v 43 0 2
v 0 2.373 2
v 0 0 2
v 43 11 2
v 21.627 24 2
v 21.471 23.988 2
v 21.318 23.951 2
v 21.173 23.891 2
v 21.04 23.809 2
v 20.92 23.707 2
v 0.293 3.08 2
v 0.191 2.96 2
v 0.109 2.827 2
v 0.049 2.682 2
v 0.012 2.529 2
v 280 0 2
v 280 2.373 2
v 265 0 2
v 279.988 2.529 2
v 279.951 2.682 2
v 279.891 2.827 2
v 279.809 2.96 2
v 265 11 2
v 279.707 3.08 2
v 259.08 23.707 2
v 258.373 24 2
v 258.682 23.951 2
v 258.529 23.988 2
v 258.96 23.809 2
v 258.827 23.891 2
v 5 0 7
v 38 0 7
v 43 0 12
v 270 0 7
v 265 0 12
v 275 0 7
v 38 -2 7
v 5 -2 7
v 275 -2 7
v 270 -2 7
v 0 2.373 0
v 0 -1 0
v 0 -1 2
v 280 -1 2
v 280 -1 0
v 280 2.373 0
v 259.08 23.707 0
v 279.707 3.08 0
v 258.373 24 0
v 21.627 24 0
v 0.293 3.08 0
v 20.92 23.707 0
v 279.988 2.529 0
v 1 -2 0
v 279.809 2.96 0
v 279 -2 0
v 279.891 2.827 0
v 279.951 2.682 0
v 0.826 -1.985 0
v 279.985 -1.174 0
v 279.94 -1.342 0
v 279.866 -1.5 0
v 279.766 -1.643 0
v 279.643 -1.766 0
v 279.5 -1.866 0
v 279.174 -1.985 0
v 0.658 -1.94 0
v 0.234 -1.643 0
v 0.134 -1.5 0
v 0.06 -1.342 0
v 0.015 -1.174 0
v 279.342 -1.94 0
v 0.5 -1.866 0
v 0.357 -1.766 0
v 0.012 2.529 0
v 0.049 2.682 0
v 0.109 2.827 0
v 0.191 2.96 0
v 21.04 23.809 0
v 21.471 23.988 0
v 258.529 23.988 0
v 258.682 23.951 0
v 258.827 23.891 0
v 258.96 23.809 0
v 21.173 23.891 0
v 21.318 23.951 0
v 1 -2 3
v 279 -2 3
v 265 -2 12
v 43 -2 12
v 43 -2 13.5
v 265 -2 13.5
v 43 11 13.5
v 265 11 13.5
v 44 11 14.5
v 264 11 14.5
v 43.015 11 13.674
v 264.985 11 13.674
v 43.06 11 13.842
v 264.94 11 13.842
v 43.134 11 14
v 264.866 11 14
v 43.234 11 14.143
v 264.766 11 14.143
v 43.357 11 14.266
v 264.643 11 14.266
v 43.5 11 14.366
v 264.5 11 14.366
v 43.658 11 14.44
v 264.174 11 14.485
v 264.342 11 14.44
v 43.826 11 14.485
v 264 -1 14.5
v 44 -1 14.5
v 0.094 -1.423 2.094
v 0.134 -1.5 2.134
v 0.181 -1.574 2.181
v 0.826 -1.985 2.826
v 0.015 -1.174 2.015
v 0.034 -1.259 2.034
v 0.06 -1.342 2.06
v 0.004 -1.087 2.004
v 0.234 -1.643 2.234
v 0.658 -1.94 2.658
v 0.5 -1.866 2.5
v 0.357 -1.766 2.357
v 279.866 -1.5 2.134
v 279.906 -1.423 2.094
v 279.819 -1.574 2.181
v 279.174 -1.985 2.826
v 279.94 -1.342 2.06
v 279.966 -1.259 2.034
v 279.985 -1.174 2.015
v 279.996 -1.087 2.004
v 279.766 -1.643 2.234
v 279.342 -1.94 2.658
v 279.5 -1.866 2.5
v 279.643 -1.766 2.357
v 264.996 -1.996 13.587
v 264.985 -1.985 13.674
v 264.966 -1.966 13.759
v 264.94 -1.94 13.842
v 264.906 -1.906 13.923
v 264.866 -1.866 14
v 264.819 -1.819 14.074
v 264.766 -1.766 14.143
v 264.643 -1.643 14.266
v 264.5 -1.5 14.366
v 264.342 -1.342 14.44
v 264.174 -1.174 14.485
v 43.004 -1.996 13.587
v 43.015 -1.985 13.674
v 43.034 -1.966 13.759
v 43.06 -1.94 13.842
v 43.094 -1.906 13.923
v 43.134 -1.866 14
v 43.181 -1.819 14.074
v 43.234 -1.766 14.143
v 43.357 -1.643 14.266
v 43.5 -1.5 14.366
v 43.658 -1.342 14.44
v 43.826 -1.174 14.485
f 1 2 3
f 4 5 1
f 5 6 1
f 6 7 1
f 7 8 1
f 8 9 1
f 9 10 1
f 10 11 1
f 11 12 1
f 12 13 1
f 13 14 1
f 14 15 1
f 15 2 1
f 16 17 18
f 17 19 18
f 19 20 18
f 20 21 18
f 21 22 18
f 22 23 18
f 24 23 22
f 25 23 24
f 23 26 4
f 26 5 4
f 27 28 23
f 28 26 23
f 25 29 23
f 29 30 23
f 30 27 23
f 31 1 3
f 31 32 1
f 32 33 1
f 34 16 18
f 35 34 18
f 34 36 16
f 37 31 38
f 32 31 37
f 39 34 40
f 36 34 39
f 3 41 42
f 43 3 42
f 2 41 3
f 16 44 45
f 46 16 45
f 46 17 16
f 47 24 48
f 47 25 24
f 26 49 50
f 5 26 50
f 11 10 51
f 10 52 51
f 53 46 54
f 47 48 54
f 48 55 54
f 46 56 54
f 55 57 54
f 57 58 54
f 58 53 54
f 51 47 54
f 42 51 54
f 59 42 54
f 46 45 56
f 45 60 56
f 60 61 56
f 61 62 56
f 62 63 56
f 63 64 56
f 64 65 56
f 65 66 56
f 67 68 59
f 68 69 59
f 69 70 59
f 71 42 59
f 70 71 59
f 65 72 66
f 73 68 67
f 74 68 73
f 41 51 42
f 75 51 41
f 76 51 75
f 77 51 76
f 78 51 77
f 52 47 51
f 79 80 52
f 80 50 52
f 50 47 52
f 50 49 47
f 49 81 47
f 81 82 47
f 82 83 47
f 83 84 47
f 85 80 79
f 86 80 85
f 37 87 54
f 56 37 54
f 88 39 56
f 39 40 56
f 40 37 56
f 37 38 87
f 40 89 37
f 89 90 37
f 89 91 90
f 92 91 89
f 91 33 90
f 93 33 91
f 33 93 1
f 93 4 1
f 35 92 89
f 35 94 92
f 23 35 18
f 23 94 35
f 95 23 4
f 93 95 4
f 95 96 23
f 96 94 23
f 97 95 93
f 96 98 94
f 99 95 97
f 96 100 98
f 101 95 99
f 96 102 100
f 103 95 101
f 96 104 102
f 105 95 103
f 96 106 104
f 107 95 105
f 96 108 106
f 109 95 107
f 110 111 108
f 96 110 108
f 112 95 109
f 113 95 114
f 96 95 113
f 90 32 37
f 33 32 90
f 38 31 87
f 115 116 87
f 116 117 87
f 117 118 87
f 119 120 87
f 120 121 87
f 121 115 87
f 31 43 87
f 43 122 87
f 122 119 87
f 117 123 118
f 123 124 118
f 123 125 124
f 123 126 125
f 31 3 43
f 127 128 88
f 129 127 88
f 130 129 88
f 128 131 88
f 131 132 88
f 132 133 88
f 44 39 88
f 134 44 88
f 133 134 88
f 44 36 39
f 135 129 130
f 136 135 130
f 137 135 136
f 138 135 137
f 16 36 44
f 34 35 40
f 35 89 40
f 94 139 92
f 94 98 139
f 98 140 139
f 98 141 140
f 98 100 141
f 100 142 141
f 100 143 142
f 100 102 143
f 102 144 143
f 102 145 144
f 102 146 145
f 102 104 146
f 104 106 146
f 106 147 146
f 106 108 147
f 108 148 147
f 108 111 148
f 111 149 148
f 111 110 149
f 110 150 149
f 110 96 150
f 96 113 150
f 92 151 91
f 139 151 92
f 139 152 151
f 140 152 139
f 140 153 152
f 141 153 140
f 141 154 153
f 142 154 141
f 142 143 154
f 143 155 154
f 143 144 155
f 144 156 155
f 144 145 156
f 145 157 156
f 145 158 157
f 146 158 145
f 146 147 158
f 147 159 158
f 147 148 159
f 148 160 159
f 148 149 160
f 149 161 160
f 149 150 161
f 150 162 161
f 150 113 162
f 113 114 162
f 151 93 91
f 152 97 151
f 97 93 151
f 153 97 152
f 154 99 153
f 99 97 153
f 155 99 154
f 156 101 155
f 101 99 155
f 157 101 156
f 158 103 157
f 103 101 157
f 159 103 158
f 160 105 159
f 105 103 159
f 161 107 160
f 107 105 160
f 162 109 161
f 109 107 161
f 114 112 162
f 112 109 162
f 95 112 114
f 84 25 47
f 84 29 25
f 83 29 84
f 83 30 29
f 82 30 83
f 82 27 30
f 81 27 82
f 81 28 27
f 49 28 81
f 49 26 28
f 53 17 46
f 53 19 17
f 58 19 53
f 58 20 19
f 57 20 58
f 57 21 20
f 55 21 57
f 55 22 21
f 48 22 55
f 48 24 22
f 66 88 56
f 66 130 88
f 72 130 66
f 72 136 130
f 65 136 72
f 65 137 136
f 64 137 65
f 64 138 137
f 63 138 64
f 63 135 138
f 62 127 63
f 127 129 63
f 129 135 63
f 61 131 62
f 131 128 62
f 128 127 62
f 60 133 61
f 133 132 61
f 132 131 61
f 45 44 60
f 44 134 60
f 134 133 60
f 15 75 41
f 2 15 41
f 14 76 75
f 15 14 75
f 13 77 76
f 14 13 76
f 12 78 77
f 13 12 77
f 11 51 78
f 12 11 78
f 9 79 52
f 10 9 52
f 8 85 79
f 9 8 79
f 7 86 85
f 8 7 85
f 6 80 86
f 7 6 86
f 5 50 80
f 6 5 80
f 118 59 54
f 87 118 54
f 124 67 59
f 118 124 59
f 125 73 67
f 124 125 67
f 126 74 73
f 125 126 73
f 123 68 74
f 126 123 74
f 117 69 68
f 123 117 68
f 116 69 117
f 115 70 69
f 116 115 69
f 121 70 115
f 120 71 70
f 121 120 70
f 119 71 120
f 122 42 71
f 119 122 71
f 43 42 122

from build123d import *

# Parameters (mm, degrees)
BOSS_EXTRUDE1_DEPTH = 2
SKETCH10_W          = 280
SKETCH10_H          = 7
BOSS_EXTRUDE3_DEPTH = 2
SKETCH3_W           = 222
SKETCH3_H           = 13
BOSS_EXTRUDE4_DEPTH = 12.5
CHAMFER1_SIZE       = 5
FILLET1_R           = 1


with BuildPart() as part:
    # Sketch1 → Boss-Extrude1 (new body)
    with BuildSketch(Plane.XY):
        with BuildLine():
            Line((21.213203436, 24), (0, 2.786796564))
            Line((0, 2.786796564), (0, 0))
            Line((0, 0), (42, 0))
            Line((42, 0), (42, 11))
            ThreePointArc((42, 11), (43.171572875, 13.828427125), (46, 15))
            Line((46, 15), (262, 15))
            ThreePointArc((262, 15), (264.828427125, 13.828427125), (266, 11))
            Line((266, 11), (266, 0))
            Line((266, 0), (280, 0))
            Line((280, 0), (280, 2.786796564))
            Line((280, 2.786796564), (258.786796564, 24))
            Line((258.786796564, 24), (21.213203436, 24))
        make_face()
        with BuildLine():
            Line((42, 11), (42, 0))
            Line((42, 0), (266, 0))
            Line((266, 0), (266, 11))
            ThreePointArc((266, 11), (264.828427125, 13.828427125), (262, 15))
            Line((262, 15), (46, 15))
            ThreePointArc((46, 15), (43.171572875, 13.828427125), (42, 11))
        make_face()
    extrude(amount=BOSS_EXTRUDE1_DEPTH)

    # Sketch10 → Boss-Extrude3 (add)
    with BuildSketch(Plane.XZ):
        with Locations((140, 3.5)):
            Rectangle(SKETCH10_W, SKETCH10_H)
    extrude(amount=BOSS_EXTRUDE3_DEPTH)

    # Sketch3 → Boss-Extrude4 (add)
    with BuildSketch(Plane.XY.offset(2)):
        with Locations((154, 4.5)):
            Rectangle(SKETCH3_W, SKETCH3_H)
    extrude(amount=BOSS_EXTRUDE4_DEPTH)

    # Chamfer1
    chamfer1_edges = [part.edges().sort_by_distance(p)[0] for p in [
        (43, -1, 7),
        (0, -1, 7),
        (280, -1, 7),
        (265, -1, 7),
    ]]
    chamfer(chamfer1_edges, length=CHAMFER1_SIZE)

    # Fillet1
    fillet1_edges = [part.edges().sort_by_distance(p)[0] for p in [
        (0, 2.786796564, 1),
        (21.213203436, 24, 1),
        (258.786796564, 24, 1),
        (280, 2.786796564, 1),
        (280, -2, 1),
        (43, 4.5, 14.5),
        (154, -2, 14.5),
        (265, 4.5, 14.5),
        (0, -2, 1),
    ]]
    fillet(fillet1_edges, radius=FILLET1_R)


solid = part.part
